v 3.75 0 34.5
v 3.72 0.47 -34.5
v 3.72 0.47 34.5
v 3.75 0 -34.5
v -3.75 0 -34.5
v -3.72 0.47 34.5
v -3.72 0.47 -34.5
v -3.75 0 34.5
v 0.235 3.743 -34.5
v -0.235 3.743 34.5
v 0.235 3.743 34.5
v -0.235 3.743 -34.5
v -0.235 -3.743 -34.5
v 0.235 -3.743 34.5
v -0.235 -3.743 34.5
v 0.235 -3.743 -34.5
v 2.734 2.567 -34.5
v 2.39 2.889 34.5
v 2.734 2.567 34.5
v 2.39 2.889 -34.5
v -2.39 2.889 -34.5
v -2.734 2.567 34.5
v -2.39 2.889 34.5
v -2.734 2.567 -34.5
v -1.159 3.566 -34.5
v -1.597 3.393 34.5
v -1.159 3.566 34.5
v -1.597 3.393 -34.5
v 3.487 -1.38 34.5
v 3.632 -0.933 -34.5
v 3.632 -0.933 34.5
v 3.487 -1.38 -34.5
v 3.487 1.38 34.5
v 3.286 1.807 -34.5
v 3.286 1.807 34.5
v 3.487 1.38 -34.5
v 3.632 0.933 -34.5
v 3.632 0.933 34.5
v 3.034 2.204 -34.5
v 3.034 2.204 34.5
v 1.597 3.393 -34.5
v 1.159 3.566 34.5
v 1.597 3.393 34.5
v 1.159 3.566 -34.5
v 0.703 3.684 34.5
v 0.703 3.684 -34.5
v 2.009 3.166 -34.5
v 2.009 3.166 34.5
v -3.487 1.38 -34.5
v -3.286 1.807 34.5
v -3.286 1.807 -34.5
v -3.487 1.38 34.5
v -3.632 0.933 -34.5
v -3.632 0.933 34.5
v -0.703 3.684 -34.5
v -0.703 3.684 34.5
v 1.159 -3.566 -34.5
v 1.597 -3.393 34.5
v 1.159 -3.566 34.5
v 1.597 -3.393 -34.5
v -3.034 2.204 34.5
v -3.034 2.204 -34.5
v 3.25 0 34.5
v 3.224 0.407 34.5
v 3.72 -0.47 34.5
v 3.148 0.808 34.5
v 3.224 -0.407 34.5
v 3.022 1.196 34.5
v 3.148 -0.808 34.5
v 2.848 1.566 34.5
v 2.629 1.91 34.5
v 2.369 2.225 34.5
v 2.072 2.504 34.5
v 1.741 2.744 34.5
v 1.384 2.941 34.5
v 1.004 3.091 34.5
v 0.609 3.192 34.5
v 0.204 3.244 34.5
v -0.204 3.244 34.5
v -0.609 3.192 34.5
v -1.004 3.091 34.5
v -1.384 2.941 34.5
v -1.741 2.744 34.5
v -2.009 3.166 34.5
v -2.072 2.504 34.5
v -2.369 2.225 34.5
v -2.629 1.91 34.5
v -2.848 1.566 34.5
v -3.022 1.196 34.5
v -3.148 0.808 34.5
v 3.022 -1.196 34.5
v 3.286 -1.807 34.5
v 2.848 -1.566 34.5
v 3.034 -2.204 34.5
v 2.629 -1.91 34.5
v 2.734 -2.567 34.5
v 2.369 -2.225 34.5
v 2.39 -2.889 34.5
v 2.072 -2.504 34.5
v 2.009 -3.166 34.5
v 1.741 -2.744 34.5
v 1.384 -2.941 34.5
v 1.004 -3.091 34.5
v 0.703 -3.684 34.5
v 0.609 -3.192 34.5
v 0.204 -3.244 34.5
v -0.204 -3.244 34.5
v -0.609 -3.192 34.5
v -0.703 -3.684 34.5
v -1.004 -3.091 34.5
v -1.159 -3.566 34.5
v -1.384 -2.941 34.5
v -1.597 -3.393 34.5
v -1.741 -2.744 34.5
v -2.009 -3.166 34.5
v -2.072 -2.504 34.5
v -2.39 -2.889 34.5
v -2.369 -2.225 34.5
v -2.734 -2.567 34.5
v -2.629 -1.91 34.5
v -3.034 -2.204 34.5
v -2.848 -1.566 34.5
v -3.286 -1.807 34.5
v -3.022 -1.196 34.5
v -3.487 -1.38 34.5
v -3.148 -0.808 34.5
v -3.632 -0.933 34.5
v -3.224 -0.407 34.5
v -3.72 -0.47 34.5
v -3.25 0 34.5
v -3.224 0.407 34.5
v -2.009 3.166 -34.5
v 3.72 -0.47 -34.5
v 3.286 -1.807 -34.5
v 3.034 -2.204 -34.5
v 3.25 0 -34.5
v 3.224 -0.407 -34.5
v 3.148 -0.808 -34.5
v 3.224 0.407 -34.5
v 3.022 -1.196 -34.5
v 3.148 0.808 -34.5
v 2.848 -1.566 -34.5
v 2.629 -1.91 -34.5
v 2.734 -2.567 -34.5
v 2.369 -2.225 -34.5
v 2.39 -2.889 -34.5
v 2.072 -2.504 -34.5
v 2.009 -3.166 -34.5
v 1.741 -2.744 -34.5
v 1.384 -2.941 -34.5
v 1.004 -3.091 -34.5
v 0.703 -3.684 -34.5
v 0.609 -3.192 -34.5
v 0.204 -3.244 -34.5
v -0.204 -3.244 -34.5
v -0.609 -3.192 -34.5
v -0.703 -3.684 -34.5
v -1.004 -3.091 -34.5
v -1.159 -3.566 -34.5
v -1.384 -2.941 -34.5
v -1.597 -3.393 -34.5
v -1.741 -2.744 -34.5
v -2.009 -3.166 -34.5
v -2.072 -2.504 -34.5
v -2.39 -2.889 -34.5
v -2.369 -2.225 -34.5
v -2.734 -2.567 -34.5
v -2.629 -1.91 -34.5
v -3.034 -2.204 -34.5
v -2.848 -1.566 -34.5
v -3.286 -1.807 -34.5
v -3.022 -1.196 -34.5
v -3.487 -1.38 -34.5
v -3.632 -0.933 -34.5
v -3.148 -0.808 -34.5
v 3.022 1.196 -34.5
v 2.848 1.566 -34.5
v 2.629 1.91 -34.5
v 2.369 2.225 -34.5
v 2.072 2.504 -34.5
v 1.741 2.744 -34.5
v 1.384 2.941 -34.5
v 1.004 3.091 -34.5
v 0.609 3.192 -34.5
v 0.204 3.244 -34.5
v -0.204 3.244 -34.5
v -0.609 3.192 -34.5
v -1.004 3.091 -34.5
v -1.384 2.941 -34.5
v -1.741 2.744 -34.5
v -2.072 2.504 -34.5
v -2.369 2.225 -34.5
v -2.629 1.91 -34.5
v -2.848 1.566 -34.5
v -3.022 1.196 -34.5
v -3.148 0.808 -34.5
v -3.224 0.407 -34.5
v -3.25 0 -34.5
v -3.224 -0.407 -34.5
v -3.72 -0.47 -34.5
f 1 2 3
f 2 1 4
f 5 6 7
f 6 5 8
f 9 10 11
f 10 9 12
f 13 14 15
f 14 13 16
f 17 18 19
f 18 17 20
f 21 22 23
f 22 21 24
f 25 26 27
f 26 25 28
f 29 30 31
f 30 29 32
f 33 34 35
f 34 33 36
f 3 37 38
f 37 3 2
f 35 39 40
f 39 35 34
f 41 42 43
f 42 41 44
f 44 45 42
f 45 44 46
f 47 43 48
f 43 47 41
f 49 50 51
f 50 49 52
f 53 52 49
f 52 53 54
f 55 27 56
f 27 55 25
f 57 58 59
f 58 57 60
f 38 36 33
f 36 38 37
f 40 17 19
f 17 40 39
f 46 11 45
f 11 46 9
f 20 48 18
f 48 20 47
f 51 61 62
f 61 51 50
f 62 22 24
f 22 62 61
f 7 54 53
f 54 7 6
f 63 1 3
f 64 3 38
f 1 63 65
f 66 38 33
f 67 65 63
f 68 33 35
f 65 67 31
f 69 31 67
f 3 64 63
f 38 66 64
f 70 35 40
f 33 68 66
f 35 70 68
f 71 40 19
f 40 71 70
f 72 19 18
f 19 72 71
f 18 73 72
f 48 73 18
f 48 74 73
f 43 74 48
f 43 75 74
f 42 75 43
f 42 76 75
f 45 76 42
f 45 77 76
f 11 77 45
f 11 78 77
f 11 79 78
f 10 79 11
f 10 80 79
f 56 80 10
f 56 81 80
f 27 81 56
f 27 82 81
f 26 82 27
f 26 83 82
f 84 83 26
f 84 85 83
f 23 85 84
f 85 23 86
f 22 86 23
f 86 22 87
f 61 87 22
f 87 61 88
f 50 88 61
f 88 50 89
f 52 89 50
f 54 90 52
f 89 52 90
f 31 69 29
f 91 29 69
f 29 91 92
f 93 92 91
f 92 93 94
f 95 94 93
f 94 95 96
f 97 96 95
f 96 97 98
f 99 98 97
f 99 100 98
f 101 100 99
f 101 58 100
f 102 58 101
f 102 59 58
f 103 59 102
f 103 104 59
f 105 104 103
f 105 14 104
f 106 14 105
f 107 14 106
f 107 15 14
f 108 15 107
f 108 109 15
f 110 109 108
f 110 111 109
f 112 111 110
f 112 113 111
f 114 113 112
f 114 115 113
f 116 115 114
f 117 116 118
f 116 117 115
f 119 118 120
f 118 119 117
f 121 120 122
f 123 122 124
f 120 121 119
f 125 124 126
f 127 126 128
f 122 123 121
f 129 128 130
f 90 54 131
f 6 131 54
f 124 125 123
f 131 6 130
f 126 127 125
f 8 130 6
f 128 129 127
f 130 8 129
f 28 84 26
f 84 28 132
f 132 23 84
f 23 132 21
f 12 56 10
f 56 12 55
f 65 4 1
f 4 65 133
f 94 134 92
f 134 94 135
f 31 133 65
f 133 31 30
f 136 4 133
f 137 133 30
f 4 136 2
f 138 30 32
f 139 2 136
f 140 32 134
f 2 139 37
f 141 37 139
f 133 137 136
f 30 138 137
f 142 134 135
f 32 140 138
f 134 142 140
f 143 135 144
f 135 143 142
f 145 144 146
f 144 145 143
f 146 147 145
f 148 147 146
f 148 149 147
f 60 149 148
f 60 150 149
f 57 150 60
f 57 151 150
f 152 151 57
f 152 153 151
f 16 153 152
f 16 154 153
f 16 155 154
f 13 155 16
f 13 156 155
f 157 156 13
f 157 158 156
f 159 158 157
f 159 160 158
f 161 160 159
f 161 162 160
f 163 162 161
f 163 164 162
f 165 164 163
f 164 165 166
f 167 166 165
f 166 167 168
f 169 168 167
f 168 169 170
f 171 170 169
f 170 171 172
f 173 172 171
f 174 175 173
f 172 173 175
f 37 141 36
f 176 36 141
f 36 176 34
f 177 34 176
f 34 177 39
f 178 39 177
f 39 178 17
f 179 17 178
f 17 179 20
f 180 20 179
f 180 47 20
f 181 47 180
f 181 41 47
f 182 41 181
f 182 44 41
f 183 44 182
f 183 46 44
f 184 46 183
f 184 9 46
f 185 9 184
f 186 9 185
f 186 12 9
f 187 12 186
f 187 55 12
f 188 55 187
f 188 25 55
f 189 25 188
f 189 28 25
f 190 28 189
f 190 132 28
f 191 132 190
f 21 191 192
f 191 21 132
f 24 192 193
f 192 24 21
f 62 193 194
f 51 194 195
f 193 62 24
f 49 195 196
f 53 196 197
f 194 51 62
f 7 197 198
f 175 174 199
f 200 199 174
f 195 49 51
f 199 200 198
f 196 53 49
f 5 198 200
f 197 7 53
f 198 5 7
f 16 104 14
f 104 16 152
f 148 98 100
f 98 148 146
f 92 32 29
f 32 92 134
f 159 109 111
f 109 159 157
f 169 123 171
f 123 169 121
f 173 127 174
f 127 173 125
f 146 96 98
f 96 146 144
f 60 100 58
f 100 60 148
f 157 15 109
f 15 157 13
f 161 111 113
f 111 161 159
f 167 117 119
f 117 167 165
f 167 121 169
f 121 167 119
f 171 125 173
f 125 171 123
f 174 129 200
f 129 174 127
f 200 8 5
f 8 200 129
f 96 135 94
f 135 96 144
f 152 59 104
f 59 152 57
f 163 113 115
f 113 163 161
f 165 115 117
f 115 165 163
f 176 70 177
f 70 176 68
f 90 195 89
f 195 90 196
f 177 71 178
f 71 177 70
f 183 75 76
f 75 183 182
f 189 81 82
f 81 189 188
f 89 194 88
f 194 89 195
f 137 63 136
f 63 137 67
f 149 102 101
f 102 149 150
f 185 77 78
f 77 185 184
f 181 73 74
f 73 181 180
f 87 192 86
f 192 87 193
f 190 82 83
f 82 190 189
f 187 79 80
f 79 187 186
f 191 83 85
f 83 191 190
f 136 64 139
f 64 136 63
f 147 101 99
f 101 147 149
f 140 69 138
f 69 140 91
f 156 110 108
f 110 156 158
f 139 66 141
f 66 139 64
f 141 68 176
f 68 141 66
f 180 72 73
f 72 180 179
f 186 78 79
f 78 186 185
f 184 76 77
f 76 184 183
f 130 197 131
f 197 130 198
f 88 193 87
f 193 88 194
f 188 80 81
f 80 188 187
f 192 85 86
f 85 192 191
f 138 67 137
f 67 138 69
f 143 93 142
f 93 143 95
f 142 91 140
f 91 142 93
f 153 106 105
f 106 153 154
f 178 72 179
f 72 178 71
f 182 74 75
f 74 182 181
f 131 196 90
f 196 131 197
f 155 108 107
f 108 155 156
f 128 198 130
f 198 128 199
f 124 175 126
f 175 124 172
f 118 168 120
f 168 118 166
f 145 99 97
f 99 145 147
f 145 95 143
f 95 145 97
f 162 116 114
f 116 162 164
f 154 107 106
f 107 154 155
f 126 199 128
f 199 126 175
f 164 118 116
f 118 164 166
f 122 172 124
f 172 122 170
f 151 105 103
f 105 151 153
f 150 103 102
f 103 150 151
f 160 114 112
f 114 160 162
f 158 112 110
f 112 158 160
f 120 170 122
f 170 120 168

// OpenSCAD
$fn = 50;


difference() {
	union() {
		translate(v = [0, 0, -34.5000000000]) {
			cylinder(h = 69, r = 3.7500000000);
		}
	}
	union() {
		translate(v = [0, 0, -100.0000000000]) {
			cylinder(h = 200, r = 3.2500000000);
		}
	}
}
